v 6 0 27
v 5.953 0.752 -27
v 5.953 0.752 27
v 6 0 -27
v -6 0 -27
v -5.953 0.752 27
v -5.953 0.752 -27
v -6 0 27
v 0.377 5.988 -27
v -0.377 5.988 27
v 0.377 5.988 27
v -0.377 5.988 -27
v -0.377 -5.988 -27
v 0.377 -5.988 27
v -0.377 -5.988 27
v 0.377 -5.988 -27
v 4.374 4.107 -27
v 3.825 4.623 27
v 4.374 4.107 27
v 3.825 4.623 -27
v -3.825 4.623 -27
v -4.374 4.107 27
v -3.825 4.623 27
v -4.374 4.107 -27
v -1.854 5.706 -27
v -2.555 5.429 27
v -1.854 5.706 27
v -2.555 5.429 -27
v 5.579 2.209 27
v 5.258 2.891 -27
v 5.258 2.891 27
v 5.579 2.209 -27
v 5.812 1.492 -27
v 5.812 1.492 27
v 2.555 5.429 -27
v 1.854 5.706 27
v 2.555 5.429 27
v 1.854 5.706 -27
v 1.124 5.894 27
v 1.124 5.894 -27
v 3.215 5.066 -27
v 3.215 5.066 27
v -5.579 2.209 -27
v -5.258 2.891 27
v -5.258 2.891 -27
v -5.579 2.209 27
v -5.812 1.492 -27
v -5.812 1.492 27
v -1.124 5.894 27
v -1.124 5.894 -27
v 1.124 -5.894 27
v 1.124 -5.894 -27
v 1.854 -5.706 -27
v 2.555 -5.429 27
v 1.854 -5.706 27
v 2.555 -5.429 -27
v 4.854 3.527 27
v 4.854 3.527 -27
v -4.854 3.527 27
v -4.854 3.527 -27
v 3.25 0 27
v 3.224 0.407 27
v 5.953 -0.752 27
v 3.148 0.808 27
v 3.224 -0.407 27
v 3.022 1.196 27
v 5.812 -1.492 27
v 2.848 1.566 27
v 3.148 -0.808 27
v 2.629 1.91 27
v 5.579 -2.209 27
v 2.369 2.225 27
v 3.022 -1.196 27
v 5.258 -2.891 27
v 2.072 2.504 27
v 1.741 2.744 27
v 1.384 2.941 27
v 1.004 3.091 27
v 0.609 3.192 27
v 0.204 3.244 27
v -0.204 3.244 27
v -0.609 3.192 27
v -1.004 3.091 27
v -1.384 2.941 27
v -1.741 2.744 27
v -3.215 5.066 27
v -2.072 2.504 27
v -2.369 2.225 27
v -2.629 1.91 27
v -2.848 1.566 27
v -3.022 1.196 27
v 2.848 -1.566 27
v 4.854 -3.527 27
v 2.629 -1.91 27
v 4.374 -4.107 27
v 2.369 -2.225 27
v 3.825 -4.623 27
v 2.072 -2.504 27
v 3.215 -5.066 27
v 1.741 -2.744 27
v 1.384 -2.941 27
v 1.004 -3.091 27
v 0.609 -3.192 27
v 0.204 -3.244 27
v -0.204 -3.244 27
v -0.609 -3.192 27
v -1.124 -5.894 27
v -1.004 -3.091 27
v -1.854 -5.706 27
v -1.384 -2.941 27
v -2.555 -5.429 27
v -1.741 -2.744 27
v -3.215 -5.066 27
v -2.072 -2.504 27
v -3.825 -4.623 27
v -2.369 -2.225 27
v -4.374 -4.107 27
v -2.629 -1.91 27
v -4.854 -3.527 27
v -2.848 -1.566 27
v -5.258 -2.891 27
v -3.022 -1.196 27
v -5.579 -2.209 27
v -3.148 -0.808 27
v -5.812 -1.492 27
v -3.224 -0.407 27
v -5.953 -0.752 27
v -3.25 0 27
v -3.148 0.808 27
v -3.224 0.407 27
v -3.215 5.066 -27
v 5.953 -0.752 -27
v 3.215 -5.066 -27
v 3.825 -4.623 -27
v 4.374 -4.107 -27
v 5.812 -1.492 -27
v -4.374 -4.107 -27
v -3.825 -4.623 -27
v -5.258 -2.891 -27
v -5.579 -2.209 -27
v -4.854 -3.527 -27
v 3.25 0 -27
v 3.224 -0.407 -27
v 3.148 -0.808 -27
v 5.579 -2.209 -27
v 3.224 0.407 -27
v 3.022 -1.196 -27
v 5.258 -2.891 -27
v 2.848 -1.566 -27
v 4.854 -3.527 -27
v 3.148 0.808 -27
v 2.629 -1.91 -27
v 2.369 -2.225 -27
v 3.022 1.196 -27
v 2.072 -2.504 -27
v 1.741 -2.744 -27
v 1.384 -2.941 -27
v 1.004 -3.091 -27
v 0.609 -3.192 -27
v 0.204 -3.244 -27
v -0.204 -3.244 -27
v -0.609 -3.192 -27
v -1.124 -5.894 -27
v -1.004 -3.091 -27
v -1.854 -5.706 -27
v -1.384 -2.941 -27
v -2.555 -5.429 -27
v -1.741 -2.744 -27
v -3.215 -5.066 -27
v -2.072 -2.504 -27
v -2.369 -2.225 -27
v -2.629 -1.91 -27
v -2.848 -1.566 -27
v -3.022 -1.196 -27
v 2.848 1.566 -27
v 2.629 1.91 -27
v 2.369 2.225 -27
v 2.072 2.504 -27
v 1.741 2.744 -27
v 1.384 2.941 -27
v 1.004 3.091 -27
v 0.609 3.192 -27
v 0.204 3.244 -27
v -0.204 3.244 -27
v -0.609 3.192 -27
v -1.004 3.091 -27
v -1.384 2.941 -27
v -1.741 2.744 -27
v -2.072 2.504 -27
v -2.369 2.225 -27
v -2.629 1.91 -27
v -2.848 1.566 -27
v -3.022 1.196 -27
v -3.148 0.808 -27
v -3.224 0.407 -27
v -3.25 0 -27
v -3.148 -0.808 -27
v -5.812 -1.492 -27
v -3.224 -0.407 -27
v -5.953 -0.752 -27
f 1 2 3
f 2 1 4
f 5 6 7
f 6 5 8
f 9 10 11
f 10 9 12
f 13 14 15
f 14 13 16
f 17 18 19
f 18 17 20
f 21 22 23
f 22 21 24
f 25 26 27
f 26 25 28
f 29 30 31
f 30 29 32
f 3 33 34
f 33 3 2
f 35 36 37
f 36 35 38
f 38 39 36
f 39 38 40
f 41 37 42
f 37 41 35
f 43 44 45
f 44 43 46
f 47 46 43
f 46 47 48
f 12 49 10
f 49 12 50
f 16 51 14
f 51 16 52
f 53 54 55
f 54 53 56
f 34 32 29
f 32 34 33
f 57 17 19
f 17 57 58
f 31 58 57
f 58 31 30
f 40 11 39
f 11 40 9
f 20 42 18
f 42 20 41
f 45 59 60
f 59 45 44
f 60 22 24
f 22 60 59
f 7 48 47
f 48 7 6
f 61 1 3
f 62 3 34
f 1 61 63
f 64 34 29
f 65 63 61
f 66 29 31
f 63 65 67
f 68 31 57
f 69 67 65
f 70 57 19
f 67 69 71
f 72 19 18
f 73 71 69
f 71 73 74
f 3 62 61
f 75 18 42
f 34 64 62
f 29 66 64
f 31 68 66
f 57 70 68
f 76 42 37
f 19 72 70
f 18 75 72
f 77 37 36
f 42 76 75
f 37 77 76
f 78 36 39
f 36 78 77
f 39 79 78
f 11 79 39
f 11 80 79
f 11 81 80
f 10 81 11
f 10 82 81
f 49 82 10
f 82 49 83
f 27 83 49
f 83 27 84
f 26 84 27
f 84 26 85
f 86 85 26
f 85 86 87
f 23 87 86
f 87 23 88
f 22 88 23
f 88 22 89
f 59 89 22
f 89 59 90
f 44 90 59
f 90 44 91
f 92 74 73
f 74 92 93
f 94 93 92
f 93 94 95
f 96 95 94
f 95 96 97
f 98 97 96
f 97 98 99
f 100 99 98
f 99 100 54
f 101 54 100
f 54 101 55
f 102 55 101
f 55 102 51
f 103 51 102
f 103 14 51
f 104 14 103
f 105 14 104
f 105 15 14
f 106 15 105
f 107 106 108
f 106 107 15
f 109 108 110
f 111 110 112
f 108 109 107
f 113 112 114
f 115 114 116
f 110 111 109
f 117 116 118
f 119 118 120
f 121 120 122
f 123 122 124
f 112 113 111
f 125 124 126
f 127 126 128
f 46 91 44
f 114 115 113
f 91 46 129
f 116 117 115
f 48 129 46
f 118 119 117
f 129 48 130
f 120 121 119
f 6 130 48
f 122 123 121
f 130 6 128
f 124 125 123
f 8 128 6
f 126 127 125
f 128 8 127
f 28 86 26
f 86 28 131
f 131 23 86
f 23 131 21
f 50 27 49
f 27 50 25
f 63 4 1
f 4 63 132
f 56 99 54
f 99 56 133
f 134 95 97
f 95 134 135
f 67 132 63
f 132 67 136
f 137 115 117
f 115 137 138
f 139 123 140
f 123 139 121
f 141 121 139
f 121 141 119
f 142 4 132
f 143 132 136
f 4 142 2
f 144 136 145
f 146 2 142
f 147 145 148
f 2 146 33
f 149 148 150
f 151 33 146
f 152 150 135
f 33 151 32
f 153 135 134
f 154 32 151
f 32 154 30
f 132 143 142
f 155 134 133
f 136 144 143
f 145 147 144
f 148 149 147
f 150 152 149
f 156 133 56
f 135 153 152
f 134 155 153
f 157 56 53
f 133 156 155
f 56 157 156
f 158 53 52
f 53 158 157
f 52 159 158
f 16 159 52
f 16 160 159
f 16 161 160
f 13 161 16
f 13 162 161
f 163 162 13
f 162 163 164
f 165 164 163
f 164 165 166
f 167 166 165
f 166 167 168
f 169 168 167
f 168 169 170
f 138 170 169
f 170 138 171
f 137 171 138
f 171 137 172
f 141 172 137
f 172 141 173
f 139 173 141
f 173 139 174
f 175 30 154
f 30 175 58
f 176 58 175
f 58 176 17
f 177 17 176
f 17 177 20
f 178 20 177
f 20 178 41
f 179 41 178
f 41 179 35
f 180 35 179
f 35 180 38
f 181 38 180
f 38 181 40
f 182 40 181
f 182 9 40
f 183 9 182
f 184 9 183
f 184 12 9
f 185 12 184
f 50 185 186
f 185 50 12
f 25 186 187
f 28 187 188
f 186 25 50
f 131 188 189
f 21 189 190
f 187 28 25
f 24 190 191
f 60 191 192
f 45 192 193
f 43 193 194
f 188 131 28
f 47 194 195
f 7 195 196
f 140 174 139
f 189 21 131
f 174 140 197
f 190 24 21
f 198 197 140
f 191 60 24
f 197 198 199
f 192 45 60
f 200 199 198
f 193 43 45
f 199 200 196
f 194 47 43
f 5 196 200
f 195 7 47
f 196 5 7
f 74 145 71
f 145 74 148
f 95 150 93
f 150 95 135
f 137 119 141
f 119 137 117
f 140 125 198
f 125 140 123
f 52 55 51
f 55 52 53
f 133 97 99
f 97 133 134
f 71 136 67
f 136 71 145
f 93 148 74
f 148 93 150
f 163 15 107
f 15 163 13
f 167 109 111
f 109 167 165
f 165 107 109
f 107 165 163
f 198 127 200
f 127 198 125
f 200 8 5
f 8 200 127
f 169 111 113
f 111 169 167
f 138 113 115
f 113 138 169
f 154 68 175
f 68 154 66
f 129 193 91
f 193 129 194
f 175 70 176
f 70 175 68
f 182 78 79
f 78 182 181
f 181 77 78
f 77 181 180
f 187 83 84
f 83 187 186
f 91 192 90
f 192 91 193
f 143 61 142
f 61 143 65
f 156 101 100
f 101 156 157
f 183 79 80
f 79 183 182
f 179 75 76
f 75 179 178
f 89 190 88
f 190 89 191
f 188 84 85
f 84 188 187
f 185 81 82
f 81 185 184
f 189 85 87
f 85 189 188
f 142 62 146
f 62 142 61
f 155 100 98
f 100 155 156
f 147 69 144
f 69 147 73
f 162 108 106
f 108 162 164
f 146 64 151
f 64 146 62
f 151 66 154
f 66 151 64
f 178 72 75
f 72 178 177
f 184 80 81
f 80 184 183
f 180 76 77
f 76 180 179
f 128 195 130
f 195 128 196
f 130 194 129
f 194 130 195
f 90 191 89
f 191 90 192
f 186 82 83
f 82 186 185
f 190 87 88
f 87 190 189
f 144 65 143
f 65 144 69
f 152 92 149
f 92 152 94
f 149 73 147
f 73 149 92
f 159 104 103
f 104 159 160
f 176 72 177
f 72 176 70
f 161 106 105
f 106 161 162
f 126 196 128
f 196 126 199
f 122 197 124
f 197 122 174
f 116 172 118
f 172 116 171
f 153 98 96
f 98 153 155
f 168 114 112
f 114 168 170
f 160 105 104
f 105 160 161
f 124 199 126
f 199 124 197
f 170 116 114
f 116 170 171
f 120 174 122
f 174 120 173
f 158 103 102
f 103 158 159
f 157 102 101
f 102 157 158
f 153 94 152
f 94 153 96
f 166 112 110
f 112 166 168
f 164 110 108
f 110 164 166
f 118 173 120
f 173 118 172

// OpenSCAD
$fn = 50;


difference() {
	union() {
		translate(v = [0, 0, -27.0000000000]) {
			cylinder(h = 54, r = 6.0000000000);
		}
	}
	union() {
		translate(v = [0, 0, -100.0000000000]) {
			cylinder(h = 200, r = 3.2500000000);
		}
	}
}
